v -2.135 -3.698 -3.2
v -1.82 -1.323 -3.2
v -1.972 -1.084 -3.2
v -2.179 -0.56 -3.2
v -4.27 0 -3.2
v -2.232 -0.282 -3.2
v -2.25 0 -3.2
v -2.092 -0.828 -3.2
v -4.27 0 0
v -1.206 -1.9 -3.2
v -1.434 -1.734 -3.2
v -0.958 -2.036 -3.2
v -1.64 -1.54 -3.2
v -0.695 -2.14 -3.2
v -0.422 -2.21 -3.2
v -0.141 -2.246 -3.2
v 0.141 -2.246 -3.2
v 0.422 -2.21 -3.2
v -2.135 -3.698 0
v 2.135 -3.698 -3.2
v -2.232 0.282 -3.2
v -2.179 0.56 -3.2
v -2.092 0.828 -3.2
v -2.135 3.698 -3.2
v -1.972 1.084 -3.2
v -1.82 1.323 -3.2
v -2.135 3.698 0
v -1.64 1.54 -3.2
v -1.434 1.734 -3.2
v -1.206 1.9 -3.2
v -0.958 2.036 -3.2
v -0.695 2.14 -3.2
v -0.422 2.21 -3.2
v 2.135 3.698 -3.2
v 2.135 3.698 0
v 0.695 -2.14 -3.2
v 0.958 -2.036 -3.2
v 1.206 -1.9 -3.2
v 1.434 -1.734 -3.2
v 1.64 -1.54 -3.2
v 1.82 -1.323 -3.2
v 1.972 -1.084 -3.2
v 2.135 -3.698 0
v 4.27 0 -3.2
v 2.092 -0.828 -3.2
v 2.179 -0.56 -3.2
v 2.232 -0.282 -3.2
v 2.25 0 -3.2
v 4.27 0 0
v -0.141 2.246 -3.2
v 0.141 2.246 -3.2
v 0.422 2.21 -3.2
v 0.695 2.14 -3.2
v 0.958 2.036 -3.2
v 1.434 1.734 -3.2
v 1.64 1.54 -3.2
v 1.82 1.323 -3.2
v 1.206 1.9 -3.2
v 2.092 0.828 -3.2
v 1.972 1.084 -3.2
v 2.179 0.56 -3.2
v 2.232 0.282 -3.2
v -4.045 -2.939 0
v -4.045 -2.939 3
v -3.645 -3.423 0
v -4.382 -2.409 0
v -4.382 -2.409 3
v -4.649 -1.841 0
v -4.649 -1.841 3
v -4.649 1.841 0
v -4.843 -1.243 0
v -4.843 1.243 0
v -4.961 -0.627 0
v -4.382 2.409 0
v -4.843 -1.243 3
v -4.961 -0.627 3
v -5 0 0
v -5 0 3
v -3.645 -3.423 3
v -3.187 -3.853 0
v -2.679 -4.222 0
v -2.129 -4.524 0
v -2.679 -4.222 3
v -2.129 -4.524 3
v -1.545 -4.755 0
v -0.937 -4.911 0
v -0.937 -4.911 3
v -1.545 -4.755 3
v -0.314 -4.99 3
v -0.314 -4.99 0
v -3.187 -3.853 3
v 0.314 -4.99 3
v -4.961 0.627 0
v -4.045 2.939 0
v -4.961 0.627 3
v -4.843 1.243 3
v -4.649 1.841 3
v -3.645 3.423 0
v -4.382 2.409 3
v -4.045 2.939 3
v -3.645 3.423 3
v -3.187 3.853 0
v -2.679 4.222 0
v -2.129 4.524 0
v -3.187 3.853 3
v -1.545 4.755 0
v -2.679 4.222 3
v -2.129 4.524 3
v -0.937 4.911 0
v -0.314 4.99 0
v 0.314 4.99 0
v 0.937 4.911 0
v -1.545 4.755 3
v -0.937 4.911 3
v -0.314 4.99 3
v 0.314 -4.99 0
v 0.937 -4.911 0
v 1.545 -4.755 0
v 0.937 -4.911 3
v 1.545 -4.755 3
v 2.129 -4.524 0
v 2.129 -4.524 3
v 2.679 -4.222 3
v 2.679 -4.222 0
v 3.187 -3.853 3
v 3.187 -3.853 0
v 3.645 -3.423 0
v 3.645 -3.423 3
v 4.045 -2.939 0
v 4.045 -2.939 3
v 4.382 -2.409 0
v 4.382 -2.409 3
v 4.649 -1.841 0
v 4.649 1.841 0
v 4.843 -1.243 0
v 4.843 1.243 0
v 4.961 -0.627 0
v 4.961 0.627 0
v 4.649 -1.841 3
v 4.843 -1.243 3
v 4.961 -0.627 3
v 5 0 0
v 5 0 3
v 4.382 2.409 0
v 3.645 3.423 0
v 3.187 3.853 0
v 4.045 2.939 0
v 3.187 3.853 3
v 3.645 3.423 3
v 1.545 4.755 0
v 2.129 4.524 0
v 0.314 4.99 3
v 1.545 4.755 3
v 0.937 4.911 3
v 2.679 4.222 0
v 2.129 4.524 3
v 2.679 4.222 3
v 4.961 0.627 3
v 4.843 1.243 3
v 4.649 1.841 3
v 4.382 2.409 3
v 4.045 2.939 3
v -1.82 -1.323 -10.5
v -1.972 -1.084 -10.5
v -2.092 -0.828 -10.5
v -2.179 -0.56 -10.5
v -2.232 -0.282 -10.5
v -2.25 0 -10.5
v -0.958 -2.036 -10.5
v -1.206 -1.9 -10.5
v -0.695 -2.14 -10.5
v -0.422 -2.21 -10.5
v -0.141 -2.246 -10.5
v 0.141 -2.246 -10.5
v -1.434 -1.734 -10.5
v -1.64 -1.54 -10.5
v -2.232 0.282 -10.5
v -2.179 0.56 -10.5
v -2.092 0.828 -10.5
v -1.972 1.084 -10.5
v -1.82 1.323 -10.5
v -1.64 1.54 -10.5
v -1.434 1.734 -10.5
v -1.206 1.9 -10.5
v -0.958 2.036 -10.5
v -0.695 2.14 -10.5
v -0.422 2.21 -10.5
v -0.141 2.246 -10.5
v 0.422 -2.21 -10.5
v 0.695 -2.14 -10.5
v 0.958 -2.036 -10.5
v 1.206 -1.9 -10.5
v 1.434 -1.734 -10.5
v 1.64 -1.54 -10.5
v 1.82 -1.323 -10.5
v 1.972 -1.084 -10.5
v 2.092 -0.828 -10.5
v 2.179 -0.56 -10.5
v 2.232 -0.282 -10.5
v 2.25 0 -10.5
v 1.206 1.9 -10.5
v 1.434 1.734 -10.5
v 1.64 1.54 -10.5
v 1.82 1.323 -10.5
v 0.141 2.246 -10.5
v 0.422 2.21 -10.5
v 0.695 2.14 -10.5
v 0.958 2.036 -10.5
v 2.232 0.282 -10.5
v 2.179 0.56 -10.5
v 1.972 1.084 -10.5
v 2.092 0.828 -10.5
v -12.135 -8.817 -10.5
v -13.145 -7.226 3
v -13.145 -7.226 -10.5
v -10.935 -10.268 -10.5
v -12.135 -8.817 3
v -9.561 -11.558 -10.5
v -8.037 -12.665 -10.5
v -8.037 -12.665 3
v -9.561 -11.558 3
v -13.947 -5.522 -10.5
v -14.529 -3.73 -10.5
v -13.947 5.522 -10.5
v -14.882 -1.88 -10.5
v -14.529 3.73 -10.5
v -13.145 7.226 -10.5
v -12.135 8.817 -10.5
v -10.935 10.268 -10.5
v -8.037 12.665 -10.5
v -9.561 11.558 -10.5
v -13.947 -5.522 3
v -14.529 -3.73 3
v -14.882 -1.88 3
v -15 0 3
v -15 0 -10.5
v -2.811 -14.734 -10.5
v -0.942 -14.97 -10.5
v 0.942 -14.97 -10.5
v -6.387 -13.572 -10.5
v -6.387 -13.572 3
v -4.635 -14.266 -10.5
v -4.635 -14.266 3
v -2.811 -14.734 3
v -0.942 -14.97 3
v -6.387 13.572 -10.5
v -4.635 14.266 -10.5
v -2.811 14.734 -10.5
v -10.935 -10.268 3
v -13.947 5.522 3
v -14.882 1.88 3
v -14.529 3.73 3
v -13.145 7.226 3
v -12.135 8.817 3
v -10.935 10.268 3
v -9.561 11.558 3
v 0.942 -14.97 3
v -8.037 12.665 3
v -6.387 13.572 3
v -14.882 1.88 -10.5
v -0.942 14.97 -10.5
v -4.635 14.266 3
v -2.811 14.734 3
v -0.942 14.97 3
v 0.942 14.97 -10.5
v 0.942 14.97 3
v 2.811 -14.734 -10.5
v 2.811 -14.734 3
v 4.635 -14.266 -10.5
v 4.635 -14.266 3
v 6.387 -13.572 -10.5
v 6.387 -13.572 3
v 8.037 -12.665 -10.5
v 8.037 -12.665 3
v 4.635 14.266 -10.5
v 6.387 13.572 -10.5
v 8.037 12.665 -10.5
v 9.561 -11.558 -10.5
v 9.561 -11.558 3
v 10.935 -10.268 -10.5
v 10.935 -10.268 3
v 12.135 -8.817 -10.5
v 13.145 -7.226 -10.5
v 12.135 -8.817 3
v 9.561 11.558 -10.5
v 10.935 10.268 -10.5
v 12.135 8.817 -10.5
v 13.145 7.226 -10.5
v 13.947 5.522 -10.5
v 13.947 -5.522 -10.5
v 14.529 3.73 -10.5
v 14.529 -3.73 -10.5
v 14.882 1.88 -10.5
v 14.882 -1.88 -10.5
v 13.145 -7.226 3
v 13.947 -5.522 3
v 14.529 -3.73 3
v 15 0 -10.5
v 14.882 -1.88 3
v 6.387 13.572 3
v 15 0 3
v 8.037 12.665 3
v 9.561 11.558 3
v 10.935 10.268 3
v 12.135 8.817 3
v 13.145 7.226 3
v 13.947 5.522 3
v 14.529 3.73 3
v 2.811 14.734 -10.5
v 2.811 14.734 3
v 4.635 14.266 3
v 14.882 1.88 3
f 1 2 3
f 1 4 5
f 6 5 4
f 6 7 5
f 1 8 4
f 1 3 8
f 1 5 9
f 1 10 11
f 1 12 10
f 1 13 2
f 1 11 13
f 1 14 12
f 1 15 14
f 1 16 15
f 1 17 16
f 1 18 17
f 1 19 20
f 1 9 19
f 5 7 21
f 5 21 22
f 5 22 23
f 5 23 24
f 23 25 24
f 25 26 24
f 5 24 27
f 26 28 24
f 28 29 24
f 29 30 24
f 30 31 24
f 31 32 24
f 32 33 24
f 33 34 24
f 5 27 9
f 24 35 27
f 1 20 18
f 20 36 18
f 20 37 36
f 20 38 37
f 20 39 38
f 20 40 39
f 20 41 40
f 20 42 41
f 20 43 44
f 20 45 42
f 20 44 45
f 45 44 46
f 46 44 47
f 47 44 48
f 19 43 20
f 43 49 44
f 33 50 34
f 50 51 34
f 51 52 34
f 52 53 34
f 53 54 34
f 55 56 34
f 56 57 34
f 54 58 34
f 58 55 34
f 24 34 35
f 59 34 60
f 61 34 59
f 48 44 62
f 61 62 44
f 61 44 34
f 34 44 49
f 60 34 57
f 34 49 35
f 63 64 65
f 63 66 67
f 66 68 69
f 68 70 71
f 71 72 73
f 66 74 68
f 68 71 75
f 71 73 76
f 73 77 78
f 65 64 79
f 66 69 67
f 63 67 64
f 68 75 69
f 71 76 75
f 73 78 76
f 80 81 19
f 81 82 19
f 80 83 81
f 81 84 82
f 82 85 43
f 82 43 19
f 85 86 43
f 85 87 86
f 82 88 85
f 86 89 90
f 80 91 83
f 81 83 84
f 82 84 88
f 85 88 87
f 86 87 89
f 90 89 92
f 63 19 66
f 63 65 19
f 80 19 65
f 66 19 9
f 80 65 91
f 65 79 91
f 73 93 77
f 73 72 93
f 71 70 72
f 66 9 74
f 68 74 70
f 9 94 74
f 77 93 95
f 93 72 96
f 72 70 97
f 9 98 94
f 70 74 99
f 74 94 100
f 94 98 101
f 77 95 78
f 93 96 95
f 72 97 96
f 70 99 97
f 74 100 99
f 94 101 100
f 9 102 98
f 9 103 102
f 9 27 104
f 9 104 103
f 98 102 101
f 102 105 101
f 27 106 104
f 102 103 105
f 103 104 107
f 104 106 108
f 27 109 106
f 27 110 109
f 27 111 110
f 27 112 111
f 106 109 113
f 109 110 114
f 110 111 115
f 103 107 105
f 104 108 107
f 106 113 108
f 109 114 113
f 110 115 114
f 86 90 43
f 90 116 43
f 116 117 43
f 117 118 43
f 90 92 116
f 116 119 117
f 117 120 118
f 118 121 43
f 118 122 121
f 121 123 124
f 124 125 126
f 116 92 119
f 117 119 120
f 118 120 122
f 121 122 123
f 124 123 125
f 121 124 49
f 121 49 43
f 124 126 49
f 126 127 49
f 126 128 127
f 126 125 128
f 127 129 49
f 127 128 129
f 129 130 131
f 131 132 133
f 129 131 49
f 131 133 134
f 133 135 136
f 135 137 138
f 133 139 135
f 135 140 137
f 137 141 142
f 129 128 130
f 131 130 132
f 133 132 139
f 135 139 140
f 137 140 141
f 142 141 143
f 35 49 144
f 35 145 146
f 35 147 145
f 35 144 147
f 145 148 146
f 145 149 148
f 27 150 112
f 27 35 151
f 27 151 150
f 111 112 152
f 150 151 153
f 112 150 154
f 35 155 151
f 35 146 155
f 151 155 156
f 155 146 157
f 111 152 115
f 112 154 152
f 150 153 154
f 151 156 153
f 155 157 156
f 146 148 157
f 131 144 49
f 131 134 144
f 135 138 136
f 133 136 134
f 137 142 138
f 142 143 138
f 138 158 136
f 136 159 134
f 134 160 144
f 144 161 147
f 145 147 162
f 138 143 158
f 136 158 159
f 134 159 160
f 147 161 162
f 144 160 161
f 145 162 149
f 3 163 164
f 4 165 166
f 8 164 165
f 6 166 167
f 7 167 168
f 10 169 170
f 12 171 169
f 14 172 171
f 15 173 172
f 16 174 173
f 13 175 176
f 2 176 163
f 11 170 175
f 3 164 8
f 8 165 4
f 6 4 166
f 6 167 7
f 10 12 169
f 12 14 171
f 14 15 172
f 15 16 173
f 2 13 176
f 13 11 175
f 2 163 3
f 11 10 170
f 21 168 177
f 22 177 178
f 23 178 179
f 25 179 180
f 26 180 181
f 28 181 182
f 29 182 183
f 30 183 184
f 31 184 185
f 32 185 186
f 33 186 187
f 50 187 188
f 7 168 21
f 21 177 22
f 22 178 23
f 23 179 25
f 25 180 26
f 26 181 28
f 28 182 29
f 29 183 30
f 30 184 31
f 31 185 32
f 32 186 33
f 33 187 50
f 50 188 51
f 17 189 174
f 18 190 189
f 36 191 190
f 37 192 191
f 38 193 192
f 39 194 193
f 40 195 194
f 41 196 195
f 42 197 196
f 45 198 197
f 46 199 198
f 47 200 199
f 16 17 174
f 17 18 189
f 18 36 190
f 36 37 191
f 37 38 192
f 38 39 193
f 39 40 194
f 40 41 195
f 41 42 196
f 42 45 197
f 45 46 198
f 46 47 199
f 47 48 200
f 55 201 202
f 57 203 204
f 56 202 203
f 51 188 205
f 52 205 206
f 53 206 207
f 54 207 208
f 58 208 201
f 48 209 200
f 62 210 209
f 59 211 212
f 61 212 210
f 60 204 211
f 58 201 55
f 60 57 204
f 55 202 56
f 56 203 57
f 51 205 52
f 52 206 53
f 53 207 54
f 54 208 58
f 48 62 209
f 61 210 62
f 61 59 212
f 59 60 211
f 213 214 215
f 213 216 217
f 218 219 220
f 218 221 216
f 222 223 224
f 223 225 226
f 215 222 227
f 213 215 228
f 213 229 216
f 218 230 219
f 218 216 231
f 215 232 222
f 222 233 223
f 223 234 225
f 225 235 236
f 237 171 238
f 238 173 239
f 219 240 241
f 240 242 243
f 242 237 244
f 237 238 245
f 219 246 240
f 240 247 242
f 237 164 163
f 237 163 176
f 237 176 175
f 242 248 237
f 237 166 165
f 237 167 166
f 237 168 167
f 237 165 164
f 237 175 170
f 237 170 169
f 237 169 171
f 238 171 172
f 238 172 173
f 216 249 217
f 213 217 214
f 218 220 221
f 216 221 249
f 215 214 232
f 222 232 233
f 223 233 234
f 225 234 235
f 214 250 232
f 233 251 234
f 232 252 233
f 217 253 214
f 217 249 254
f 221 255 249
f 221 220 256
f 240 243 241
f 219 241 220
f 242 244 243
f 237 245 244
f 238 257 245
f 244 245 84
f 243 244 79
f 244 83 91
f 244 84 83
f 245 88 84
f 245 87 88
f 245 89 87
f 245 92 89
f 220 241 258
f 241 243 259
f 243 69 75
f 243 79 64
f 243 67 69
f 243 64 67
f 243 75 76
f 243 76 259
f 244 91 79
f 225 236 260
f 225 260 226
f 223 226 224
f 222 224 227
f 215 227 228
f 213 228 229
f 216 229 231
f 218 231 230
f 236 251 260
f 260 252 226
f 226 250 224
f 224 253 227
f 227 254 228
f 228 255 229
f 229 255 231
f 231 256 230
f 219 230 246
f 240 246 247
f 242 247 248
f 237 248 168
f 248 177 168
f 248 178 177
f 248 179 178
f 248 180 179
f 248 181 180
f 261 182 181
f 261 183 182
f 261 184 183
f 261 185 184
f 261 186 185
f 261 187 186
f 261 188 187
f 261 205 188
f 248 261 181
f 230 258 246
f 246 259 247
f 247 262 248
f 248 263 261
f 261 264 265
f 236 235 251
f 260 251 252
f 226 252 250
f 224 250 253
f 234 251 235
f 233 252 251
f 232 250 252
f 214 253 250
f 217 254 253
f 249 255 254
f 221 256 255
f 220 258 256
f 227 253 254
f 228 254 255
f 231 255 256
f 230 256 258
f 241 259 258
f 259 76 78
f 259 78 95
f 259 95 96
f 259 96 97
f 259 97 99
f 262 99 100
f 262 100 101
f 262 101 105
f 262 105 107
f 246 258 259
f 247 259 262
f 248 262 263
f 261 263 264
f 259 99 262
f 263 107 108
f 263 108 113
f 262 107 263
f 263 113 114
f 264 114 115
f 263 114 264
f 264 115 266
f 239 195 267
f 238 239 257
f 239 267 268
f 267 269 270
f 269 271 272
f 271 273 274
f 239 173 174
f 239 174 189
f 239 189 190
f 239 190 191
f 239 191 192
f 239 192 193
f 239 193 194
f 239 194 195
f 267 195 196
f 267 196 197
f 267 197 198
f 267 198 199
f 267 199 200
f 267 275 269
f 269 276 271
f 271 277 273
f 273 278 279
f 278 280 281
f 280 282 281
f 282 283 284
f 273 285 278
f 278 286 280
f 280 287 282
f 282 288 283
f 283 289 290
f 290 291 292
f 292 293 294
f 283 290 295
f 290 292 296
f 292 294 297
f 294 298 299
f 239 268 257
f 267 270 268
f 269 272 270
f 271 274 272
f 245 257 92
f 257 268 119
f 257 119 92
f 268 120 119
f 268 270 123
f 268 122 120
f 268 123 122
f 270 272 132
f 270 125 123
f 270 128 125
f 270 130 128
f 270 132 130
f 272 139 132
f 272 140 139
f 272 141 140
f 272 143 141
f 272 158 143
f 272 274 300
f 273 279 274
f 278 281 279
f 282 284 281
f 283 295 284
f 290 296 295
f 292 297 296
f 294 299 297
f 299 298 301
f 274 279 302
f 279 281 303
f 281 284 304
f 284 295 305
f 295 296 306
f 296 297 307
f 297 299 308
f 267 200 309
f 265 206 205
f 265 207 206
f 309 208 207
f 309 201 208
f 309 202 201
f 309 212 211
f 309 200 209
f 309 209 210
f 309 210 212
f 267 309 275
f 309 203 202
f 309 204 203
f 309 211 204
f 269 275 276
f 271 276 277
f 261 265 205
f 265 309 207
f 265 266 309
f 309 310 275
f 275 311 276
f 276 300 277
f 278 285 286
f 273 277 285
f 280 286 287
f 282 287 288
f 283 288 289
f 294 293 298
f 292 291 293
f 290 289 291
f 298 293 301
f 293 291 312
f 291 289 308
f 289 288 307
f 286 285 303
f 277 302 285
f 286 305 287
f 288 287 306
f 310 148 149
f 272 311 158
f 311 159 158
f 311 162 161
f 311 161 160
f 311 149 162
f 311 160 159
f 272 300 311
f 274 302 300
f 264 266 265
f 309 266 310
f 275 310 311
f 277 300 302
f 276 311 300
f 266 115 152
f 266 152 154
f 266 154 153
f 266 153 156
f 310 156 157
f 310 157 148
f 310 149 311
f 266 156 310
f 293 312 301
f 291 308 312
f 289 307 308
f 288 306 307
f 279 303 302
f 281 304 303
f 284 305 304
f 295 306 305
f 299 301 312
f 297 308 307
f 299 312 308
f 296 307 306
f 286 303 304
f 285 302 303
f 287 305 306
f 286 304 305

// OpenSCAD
$fn = 50;

difference() {
	union() {
		translate(v = [0, 0, -10.5]) {
			cylinder(h = 13.5, r = 15.0);
		}
	}
	union() {
		translate(v = [0, 0, 0]) {
			rotate(a = [0, 0, 0]) {
				difference() {
					union() {
						translate(v = [0, 0, -3.2]) {
							linear_extrude(height = 3.2) {
								polygon(points = [[4.2698, 0.0], [2.1349000000000005, 3.697755269078796], [-2.134899999999999, 3.6977552690787965], [-4.2698, 5.228996902999369e-16], [-2.134900000000002, -3.6977552690787956], [2.1348999999999974, -3.697755269078798]]);
							}
						}
					}
					union();
				}
			}
		}
		#cylinder(h = 3, r = 5.0);
		#translate(v = [0, 0, -100.0]) {
			cylinder(h = 200, r = 2.25);
		}
	}
}
